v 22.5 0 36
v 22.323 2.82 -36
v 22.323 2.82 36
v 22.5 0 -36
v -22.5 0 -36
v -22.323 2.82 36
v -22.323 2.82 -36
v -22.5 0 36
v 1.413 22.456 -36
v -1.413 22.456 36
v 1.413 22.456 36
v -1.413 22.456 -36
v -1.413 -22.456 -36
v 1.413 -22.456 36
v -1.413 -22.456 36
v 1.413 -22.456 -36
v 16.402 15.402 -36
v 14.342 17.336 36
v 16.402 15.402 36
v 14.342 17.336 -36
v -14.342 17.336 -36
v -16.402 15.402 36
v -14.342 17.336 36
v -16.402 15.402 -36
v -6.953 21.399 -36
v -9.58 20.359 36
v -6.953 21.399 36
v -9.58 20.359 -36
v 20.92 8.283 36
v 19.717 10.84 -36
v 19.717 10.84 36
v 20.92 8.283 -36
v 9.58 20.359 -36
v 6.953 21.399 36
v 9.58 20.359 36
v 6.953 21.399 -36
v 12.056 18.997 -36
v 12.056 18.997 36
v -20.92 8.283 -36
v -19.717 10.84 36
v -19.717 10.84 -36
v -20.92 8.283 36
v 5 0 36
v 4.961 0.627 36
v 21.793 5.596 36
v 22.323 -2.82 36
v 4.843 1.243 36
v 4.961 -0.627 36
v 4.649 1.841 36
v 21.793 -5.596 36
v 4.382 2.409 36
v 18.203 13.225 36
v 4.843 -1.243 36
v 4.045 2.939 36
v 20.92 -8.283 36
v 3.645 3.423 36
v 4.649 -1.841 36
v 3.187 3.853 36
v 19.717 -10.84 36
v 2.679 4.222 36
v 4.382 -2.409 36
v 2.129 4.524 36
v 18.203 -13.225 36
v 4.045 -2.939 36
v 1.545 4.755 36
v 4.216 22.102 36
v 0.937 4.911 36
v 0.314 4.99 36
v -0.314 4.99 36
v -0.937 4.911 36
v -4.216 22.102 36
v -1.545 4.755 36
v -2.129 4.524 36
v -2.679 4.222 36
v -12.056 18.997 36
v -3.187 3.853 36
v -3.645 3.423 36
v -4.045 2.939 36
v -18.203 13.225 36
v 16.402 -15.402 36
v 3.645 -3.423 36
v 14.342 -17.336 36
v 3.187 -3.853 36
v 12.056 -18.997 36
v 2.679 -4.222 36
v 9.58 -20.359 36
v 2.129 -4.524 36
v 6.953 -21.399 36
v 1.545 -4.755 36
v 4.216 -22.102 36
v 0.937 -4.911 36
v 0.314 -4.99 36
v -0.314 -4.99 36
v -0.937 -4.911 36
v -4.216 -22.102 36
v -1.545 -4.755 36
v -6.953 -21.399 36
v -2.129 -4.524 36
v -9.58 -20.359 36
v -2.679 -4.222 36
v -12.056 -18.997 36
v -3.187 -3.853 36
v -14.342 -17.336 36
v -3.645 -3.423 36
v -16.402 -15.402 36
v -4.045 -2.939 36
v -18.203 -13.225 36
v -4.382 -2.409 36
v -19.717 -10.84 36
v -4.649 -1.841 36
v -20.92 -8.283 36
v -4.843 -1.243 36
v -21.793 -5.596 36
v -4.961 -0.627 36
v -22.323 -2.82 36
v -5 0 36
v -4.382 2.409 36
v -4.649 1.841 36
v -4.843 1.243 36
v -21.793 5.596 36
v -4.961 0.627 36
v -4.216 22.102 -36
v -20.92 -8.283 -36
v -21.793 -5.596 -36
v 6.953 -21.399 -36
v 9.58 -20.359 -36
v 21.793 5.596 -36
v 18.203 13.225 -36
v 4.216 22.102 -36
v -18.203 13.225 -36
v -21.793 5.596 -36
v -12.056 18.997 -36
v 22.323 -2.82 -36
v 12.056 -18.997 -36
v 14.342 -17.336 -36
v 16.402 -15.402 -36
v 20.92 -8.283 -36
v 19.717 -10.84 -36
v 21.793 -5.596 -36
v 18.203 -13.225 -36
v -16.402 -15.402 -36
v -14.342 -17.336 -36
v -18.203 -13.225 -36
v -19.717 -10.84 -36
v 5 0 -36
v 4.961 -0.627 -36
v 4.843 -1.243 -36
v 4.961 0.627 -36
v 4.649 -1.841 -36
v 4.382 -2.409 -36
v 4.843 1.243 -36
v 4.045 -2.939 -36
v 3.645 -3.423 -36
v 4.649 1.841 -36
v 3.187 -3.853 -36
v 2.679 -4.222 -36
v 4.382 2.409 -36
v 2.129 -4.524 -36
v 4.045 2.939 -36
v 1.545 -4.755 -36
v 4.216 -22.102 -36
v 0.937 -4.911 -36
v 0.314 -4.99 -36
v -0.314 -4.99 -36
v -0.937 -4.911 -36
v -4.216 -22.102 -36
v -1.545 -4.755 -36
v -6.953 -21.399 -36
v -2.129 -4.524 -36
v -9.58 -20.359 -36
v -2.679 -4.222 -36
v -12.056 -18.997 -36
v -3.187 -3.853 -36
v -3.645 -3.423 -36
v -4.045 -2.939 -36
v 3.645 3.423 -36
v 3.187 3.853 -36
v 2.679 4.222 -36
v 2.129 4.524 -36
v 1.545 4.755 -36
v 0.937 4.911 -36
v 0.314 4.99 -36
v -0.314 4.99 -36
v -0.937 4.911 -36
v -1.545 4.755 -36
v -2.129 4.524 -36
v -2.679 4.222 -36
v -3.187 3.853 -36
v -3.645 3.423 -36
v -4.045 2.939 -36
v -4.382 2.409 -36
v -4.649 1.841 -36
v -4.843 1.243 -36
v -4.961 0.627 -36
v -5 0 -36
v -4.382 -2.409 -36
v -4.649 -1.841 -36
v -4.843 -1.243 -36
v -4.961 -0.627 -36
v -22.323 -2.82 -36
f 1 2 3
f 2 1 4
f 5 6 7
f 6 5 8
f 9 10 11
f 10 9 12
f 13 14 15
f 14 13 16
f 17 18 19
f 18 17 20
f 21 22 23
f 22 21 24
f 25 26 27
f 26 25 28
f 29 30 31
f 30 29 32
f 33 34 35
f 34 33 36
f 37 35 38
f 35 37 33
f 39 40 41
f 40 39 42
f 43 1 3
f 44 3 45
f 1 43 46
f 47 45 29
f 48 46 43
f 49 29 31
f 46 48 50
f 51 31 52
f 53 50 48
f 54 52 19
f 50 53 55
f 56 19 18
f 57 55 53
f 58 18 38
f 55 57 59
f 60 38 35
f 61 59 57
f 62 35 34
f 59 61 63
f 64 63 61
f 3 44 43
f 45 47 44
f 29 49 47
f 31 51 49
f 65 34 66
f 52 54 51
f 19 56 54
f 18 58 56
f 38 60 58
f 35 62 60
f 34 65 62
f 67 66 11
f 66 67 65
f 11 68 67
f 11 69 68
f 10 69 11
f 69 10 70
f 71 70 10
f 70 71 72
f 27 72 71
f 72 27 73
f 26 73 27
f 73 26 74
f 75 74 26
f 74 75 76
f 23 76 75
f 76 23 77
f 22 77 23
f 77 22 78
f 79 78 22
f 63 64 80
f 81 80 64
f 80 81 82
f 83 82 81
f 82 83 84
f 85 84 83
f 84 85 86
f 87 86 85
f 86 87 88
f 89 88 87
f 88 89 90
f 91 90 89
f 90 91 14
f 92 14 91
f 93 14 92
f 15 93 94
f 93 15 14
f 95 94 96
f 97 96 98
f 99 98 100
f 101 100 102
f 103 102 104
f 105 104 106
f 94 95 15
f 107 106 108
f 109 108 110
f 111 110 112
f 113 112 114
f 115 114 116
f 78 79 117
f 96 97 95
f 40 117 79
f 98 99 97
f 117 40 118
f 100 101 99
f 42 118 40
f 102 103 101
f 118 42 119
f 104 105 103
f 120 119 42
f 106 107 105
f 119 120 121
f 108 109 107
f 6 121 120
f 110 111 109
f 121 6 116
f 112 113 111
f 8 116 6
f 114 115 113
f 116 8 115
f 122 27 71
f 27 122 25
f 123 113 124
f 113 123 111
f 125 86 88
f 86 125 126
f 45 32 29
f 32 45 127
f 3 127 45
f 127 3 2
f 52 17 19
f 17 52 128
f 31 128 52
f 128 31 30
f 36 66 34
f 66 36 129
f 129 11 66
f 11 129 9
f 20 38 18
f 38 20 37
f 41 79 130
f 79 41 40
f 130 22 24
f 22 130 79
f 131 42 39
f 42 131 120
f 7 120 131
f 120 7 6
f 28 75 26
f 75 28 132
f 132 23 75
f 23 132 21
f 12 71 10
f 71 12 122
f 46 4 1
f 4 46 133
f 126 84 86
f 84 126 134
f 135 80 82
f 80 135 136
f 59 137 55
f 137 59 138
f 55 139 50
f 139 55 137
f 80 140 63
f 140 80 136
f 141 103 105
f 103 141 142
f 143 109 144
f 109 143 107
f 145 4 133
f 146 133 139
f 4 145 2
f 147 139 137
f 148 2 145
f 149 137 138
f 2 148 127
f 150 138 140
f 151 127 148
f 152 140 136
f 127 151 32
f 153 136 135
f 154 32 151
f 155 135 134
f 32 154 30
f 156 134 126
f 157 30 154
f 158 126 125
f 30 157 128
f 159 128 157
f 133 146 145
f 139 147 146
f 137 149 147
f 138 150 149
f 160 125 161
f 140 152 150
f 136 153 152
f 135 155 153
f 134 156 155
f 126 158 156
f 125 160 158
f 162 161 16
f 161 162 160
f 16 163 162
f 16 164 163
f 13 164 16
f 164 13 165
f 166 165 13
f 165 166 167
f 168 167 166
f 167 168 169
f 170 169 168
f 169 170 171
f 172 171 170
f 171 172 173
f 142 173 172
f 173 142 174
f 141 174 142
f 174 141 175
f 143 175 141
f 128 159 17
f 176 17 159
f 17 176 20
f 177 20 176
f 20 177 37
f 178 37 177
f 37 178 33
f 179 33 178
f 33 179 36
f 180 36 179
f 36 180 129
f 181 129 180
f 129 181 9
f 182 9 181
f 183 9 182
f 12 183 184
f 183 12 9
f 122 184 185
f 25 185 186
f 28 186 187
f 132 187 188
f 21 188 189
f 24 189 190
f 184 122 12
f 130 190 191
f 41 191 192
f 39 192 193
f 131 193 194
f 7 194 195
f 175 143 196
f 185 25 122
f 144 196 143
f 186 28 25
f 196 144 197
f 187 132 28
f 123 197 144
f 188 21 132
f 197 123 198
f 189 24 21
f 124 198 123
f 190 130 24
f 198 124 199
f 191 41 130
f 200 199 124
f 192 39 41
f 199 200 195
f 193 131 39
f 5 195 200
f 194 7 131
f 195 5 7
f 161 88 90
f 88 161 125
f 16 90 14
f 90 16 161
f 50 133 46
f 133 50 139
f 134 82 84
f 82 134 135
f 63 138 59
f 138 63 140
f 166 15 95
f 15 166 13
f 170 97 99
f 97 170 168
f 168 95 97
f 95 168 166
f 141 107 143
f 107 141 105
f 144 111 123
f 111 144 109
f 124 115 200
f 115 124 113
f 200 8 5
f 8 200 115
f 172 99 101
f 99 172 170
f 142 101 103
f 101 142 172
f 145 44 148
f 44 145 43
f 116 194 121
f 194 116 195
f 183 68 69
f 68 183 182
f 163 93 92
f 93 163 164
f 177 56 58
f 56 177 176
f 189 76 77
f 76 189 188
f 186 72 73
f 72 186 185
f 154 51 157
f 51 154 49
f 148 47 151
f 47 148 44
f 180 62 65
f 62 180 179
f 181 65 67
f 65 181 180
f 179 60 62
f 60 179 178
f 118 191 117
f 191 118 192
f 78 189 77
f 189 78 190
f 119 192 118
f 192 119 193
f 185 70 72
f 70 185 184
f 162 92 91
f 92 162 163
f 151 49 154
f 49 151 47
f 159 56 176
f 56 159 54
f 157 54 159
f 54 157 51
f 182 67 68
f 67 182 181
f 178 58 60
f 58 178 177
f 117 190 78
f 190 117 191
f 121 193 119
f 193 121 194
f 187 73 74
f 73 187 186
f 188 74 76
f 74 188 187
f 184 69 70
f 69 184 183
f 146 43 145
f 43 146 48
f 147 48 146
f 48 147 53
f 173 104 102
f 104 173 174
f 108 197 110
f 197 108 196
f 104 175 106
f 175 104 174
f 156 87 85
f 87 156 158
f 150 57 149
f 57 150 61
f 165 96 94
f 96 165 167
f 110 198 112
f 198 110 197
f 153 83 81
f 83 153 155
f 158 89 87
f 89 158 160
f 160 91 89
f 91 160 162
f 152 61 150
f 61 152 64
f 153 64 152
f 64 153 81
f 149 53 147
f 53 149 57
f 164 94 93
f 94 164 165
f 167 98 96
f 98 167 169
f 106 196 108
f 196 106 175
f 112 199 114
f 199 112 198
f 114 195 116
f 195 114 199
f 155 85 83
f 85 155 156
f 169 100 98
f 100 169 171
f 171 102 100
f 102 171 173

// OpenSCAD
$fn = 50;


difference() {
	union() {
		translate(v = [0, 0, -36.0000000000]) {
			cylinder(h = 72, r = 22.5000000000);
		}
	}
	union() {
		translate(v = [0, 0, -100.0000000000]) {
			cylinder(h = 200, r = 5);
		}
	}
}
